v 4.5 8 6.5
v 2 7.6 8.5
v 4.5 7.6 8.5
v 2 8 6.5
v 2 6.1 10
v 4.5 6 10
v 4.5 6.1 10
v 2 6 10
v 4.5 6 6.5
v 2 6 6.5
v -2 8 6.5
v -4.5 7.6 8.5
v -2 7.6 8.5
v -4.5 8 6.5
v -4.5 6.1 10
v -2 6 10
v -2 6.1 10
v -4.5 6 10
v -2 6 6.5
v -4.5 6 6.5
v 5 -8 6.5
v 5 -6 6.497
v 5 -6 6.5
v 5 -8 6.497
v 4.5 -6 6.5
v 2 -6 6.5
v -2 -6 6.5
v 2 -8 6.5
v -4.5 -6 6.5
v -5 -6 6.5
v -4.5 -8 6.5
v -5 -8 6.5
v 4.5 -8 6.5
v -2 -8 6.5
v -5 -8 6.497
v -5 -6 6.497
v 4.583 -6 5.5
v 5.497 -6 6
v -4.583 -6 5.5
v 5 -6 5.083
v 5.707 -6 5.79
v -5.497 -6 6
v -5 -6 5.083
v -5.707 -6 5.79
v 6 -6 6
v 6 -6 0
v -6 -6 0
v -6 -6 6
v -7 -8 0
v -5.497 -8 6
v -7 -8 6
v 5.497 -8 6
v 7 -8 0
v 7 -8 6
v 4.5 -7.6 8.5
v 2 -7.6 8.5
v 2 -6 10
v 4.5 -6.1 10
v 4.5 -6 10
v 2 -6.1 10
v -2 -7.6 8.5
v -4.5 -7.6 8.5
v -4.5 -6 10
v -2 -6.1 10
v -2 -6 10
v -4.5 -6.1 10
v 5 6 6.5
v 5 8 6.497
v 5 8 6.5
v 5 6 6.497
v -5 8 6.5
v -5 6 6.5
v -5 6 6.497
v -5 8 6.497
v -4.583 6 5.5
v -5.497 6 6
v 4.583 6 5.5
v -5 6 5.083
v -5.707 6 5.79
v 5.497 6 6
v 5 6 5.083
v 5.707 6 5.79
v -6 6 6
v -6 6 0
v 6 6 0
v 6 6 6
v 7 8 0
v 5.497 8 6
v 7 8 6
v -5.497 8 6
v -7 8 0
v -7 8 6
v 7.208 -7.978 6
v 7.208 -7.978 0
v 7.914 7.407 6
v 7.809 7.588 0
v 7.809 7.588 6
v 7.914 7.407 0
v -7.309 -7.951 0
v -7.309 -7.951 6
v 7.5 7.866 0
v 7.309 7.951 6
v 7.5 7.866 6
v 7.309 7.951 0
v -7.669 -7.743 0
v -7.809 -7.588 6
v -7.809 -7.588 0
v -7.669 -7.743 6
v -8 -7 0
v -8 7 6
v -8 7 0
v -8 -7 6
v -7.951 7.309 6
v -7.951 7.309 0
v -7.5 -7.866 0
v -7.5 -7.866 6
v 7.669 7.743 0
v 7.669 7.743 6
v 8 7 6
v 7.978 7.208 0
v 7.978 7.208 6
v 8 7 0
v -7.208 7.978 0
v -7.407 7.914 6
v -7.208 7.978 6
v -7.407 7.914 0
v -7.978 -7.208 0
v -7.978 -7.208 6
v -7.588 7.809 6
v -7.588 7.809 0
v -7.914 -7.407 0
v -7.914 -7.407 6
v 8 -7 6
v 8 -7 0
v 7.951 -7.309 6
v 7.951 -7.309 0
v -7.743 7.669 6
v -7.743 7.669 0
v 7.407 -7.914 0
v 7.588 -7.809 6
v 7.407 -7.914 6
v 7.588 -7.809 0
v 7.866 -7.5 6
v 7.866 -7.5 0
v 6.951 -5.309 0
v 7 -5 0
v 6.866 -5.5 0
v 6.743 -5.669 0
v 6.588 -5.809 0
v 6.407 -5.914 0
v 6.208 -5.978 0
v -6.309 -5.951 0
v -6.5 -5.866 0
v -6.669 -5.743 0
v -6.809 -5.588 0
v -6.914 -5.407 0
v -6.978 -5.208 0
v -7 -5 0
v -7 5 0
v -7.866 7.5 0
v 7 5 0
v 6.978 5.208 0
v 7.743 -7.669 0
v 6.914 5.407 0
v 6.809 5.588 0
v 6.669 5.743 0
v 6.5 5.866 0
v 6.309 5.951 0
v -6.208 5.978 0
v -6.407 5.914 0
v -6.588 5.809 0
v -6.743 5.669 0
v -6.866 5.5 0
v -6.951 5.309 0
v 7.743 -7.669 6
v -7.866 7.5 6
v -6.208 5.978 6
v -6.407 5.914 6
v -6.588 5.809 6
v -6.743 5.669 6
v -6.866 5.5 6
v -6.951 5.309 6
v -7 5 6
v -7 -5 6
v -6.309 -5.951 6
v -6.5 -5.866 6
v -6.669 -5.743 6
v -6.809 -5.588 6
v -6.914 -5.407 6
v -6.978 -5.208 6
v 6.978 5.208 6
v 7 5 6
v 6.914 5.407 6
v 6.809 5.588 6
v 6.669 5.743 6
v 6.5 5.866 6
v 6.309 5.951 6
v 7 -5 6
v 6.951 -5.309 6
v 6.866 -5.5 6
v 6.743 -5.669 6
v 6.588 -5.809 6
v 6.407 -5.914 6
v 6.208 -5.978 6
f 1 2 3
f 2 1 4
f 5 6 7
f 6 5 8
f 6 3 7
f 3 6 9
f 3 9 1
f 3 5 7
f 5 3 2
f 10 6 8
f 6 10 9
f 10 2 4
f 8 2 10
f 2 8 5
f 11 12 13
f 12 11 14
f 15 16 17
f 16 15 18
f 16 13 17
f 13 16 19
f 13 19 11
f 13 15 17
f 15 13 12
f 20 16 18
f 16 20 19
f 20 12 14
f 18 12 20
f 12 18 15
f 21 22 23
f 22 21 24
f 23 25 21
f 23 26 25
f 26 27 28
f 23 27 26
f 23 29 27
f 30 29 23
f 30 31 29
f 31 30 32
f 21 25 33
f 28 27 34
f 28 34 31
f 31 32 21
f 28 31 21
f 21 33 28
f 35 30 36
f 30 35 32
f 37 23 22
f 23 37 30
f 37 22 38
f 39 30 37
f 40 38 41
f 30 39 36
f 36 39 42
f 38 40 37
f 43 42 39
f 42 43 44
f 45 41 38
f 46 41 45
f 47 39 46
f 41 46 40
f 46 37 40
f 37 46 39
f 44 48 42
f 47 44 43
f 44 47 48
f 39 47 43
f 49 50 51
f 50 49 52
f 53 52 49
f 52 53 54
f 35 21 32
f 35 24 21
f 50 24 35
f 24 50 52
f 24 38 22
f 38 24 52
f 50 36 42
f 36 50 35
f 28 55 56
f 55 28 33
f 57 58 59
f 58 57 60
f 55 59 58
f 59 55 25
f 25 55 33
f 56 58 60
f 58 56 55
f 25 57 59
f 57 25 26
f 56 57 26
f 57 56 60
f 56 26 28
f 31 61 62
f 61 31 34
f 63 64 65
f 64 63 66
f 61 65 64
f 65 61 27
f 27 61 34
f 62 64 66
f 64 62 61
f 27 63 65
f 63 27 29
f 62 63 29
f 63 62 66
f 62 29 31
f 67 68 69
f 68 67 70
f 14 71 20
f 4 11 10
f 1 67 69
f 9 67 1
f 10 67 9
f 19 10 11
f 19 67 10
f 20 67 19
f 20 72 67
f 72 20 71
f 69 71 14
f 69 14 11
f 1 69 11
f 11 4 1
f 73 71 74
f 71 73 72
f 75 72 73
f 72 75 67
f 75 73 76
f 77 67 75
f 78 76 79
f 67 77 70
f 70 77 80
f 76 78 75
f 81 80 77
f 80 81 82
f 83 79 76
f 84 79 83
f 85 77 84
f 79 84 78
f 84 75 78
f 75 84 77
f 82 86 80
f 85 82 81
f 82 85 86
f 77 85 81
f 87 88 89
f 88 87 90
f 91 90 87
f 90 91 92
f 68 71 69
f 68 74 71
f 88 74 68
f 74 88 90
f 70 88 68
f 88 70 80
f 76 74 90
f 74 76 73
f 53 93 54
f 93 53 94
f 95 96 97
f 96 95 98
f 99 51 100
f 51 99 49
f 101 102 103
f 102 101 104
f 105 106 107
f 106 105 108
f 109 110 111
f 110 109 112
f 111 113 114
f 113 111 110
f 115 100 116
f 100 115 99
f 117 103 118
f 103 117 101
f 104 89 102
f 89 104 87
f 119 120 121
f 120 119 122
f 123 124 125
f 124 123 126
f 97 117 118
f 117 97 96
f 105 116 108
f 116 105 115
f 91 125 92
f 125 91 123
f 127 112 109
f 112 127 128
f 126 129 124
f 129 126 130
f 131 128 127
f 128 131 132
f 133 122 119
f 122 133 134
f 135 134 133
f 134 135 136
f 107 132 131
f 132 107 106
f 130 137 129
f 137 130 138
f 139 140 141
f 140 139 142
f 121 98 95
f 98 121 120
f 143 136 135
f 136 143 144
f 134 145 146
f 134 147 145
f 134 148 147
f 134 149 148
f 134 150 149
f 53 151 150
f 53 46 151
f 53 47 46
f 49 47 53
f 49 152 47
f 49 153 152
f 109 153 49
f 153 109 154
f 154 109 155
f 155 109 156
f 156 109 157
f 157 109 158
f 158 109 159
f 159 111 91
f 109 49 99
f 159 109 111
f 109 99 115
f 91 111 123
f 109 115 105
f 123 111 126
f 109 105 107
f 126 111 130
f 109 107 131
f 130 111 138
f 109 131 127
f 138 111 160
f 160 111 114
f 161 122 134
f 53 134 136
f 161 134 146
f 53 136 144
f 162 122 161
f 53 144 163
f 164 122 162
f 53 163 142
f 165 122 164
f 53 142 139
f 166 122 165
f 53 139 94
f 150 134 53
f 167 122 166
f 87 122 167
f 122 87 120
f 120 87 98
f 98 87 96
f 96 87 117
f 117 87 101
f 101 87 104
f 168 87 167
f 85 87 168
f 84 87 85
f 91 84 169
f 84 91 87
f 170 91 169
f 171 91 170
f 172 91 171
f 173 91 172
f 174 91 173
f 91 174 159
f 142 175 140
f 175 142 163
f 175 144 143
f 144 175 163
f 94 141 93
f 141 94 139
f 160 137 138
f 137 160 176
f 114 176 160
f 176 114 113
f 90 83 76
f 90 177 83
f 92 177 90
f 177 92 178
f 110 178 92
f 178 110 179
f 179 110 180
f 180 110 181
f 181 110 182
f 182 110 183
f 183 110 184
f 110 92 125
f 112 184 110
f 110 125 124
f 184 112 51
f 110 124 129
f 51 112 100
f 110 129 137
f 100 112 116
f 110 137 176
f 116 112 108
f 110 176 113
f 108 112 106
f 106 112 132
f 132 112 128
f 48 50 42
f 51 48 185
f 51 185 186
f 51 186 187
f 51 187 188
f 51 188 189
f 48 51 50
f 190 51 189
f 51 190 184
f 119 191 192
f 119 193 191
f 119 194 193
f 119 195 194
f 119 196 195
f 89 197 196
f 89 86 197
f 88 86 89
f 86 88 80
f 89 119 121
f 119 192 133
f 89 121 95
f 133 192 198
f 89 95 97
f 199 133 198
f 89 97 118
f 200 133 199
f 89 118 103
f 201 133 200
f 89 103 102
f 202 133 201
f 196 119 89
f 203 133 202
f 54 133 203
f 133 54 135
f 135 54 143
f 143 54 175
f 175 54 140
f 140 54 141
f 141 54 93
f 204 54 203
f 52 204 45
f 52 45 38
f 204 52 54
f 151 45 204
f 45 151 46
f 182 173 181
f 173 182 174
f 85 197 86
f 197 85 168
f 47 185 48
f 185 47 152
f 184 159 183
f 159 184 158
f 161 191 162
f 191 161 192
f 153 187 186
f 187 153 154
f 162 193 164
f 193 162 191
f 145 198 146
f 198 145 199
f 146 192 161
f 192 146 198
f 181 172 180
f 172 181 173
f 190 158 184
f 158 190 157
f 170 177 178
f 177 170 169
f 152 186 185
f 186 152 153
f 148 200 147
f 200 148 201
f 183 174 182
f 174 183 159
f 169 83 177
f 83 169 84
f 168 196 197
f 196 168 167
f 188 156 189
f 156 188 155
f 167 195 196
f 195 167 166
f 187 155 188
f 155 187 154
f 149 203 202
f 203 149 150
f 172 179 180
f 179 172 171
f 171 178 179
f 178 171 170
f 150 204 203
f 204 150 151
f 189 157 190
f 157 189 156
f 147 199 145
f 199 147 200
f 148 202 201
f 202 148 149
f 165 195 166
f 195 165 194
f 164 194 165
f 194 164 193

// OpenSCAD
$fn=30;

module ooo(r=1){
  offset(r)offset(-r*2)offset(r)children();
}

module opener(h){
  r=1;
  module frame(){
    difference(){
      linear_extrude(h)ooo()square([16,16],center=true);
      translate([0,0,-1])linear_extrude(h*2)ooo()square([14,12],center=true);
    }
  }
  module peg(hp){
    hull(){
      translate([0,1.4/2-0.01/2,hp])cube([2,0.01,0.1],center=true);
      translate([0,0,hp-2])cube([2,1.5,0.1],center=true);
      translate([0,-0.25,-0.5])cube([2,2,0.1],center=true);
    }
  }
  
  module peg2(hp,w=2.5){
    translate([-w/2,-2/2,hp/2])
    rotate([0,90,0])
    linear_extrude(w)
    hull(){
      square([0.1,0.1],center=true);
      translate([hp-2,1.5,0])square([0.1,0.1],center=true);
      translate([hp,0,0])square([0.1,0.1],center=true);
      translate([hp,1.9,0])square([0.1,0.1],center=true);
    }
  }
  module pegs(){
    translate([0,7.05,h+2.2]){
      translate([3.25,0])peg2(3.5);
      translate([-3.25,0])peg2(3.5);
    }
    translate([0,-7,h])cube([10,2,1],center=true);
    translate([5,-7,h-0.21])rotate([0,45,0])cube([1,2,1],center=true);
    translate([-5,-7,h-0.21])rotate([0,45,0])cube([1,2,1],center=true);
  }
//  peg(3.5);
//  translate([3,0,0])peg2(3.5);
  pegs();
  mirror([0,1,0])pegs();
  frame();
}


//translate([0,0,4])color([1,0.3,0.9])import("choc.stl");

h=6;
//translate([0,0,-h/2])
opener(h=h);
